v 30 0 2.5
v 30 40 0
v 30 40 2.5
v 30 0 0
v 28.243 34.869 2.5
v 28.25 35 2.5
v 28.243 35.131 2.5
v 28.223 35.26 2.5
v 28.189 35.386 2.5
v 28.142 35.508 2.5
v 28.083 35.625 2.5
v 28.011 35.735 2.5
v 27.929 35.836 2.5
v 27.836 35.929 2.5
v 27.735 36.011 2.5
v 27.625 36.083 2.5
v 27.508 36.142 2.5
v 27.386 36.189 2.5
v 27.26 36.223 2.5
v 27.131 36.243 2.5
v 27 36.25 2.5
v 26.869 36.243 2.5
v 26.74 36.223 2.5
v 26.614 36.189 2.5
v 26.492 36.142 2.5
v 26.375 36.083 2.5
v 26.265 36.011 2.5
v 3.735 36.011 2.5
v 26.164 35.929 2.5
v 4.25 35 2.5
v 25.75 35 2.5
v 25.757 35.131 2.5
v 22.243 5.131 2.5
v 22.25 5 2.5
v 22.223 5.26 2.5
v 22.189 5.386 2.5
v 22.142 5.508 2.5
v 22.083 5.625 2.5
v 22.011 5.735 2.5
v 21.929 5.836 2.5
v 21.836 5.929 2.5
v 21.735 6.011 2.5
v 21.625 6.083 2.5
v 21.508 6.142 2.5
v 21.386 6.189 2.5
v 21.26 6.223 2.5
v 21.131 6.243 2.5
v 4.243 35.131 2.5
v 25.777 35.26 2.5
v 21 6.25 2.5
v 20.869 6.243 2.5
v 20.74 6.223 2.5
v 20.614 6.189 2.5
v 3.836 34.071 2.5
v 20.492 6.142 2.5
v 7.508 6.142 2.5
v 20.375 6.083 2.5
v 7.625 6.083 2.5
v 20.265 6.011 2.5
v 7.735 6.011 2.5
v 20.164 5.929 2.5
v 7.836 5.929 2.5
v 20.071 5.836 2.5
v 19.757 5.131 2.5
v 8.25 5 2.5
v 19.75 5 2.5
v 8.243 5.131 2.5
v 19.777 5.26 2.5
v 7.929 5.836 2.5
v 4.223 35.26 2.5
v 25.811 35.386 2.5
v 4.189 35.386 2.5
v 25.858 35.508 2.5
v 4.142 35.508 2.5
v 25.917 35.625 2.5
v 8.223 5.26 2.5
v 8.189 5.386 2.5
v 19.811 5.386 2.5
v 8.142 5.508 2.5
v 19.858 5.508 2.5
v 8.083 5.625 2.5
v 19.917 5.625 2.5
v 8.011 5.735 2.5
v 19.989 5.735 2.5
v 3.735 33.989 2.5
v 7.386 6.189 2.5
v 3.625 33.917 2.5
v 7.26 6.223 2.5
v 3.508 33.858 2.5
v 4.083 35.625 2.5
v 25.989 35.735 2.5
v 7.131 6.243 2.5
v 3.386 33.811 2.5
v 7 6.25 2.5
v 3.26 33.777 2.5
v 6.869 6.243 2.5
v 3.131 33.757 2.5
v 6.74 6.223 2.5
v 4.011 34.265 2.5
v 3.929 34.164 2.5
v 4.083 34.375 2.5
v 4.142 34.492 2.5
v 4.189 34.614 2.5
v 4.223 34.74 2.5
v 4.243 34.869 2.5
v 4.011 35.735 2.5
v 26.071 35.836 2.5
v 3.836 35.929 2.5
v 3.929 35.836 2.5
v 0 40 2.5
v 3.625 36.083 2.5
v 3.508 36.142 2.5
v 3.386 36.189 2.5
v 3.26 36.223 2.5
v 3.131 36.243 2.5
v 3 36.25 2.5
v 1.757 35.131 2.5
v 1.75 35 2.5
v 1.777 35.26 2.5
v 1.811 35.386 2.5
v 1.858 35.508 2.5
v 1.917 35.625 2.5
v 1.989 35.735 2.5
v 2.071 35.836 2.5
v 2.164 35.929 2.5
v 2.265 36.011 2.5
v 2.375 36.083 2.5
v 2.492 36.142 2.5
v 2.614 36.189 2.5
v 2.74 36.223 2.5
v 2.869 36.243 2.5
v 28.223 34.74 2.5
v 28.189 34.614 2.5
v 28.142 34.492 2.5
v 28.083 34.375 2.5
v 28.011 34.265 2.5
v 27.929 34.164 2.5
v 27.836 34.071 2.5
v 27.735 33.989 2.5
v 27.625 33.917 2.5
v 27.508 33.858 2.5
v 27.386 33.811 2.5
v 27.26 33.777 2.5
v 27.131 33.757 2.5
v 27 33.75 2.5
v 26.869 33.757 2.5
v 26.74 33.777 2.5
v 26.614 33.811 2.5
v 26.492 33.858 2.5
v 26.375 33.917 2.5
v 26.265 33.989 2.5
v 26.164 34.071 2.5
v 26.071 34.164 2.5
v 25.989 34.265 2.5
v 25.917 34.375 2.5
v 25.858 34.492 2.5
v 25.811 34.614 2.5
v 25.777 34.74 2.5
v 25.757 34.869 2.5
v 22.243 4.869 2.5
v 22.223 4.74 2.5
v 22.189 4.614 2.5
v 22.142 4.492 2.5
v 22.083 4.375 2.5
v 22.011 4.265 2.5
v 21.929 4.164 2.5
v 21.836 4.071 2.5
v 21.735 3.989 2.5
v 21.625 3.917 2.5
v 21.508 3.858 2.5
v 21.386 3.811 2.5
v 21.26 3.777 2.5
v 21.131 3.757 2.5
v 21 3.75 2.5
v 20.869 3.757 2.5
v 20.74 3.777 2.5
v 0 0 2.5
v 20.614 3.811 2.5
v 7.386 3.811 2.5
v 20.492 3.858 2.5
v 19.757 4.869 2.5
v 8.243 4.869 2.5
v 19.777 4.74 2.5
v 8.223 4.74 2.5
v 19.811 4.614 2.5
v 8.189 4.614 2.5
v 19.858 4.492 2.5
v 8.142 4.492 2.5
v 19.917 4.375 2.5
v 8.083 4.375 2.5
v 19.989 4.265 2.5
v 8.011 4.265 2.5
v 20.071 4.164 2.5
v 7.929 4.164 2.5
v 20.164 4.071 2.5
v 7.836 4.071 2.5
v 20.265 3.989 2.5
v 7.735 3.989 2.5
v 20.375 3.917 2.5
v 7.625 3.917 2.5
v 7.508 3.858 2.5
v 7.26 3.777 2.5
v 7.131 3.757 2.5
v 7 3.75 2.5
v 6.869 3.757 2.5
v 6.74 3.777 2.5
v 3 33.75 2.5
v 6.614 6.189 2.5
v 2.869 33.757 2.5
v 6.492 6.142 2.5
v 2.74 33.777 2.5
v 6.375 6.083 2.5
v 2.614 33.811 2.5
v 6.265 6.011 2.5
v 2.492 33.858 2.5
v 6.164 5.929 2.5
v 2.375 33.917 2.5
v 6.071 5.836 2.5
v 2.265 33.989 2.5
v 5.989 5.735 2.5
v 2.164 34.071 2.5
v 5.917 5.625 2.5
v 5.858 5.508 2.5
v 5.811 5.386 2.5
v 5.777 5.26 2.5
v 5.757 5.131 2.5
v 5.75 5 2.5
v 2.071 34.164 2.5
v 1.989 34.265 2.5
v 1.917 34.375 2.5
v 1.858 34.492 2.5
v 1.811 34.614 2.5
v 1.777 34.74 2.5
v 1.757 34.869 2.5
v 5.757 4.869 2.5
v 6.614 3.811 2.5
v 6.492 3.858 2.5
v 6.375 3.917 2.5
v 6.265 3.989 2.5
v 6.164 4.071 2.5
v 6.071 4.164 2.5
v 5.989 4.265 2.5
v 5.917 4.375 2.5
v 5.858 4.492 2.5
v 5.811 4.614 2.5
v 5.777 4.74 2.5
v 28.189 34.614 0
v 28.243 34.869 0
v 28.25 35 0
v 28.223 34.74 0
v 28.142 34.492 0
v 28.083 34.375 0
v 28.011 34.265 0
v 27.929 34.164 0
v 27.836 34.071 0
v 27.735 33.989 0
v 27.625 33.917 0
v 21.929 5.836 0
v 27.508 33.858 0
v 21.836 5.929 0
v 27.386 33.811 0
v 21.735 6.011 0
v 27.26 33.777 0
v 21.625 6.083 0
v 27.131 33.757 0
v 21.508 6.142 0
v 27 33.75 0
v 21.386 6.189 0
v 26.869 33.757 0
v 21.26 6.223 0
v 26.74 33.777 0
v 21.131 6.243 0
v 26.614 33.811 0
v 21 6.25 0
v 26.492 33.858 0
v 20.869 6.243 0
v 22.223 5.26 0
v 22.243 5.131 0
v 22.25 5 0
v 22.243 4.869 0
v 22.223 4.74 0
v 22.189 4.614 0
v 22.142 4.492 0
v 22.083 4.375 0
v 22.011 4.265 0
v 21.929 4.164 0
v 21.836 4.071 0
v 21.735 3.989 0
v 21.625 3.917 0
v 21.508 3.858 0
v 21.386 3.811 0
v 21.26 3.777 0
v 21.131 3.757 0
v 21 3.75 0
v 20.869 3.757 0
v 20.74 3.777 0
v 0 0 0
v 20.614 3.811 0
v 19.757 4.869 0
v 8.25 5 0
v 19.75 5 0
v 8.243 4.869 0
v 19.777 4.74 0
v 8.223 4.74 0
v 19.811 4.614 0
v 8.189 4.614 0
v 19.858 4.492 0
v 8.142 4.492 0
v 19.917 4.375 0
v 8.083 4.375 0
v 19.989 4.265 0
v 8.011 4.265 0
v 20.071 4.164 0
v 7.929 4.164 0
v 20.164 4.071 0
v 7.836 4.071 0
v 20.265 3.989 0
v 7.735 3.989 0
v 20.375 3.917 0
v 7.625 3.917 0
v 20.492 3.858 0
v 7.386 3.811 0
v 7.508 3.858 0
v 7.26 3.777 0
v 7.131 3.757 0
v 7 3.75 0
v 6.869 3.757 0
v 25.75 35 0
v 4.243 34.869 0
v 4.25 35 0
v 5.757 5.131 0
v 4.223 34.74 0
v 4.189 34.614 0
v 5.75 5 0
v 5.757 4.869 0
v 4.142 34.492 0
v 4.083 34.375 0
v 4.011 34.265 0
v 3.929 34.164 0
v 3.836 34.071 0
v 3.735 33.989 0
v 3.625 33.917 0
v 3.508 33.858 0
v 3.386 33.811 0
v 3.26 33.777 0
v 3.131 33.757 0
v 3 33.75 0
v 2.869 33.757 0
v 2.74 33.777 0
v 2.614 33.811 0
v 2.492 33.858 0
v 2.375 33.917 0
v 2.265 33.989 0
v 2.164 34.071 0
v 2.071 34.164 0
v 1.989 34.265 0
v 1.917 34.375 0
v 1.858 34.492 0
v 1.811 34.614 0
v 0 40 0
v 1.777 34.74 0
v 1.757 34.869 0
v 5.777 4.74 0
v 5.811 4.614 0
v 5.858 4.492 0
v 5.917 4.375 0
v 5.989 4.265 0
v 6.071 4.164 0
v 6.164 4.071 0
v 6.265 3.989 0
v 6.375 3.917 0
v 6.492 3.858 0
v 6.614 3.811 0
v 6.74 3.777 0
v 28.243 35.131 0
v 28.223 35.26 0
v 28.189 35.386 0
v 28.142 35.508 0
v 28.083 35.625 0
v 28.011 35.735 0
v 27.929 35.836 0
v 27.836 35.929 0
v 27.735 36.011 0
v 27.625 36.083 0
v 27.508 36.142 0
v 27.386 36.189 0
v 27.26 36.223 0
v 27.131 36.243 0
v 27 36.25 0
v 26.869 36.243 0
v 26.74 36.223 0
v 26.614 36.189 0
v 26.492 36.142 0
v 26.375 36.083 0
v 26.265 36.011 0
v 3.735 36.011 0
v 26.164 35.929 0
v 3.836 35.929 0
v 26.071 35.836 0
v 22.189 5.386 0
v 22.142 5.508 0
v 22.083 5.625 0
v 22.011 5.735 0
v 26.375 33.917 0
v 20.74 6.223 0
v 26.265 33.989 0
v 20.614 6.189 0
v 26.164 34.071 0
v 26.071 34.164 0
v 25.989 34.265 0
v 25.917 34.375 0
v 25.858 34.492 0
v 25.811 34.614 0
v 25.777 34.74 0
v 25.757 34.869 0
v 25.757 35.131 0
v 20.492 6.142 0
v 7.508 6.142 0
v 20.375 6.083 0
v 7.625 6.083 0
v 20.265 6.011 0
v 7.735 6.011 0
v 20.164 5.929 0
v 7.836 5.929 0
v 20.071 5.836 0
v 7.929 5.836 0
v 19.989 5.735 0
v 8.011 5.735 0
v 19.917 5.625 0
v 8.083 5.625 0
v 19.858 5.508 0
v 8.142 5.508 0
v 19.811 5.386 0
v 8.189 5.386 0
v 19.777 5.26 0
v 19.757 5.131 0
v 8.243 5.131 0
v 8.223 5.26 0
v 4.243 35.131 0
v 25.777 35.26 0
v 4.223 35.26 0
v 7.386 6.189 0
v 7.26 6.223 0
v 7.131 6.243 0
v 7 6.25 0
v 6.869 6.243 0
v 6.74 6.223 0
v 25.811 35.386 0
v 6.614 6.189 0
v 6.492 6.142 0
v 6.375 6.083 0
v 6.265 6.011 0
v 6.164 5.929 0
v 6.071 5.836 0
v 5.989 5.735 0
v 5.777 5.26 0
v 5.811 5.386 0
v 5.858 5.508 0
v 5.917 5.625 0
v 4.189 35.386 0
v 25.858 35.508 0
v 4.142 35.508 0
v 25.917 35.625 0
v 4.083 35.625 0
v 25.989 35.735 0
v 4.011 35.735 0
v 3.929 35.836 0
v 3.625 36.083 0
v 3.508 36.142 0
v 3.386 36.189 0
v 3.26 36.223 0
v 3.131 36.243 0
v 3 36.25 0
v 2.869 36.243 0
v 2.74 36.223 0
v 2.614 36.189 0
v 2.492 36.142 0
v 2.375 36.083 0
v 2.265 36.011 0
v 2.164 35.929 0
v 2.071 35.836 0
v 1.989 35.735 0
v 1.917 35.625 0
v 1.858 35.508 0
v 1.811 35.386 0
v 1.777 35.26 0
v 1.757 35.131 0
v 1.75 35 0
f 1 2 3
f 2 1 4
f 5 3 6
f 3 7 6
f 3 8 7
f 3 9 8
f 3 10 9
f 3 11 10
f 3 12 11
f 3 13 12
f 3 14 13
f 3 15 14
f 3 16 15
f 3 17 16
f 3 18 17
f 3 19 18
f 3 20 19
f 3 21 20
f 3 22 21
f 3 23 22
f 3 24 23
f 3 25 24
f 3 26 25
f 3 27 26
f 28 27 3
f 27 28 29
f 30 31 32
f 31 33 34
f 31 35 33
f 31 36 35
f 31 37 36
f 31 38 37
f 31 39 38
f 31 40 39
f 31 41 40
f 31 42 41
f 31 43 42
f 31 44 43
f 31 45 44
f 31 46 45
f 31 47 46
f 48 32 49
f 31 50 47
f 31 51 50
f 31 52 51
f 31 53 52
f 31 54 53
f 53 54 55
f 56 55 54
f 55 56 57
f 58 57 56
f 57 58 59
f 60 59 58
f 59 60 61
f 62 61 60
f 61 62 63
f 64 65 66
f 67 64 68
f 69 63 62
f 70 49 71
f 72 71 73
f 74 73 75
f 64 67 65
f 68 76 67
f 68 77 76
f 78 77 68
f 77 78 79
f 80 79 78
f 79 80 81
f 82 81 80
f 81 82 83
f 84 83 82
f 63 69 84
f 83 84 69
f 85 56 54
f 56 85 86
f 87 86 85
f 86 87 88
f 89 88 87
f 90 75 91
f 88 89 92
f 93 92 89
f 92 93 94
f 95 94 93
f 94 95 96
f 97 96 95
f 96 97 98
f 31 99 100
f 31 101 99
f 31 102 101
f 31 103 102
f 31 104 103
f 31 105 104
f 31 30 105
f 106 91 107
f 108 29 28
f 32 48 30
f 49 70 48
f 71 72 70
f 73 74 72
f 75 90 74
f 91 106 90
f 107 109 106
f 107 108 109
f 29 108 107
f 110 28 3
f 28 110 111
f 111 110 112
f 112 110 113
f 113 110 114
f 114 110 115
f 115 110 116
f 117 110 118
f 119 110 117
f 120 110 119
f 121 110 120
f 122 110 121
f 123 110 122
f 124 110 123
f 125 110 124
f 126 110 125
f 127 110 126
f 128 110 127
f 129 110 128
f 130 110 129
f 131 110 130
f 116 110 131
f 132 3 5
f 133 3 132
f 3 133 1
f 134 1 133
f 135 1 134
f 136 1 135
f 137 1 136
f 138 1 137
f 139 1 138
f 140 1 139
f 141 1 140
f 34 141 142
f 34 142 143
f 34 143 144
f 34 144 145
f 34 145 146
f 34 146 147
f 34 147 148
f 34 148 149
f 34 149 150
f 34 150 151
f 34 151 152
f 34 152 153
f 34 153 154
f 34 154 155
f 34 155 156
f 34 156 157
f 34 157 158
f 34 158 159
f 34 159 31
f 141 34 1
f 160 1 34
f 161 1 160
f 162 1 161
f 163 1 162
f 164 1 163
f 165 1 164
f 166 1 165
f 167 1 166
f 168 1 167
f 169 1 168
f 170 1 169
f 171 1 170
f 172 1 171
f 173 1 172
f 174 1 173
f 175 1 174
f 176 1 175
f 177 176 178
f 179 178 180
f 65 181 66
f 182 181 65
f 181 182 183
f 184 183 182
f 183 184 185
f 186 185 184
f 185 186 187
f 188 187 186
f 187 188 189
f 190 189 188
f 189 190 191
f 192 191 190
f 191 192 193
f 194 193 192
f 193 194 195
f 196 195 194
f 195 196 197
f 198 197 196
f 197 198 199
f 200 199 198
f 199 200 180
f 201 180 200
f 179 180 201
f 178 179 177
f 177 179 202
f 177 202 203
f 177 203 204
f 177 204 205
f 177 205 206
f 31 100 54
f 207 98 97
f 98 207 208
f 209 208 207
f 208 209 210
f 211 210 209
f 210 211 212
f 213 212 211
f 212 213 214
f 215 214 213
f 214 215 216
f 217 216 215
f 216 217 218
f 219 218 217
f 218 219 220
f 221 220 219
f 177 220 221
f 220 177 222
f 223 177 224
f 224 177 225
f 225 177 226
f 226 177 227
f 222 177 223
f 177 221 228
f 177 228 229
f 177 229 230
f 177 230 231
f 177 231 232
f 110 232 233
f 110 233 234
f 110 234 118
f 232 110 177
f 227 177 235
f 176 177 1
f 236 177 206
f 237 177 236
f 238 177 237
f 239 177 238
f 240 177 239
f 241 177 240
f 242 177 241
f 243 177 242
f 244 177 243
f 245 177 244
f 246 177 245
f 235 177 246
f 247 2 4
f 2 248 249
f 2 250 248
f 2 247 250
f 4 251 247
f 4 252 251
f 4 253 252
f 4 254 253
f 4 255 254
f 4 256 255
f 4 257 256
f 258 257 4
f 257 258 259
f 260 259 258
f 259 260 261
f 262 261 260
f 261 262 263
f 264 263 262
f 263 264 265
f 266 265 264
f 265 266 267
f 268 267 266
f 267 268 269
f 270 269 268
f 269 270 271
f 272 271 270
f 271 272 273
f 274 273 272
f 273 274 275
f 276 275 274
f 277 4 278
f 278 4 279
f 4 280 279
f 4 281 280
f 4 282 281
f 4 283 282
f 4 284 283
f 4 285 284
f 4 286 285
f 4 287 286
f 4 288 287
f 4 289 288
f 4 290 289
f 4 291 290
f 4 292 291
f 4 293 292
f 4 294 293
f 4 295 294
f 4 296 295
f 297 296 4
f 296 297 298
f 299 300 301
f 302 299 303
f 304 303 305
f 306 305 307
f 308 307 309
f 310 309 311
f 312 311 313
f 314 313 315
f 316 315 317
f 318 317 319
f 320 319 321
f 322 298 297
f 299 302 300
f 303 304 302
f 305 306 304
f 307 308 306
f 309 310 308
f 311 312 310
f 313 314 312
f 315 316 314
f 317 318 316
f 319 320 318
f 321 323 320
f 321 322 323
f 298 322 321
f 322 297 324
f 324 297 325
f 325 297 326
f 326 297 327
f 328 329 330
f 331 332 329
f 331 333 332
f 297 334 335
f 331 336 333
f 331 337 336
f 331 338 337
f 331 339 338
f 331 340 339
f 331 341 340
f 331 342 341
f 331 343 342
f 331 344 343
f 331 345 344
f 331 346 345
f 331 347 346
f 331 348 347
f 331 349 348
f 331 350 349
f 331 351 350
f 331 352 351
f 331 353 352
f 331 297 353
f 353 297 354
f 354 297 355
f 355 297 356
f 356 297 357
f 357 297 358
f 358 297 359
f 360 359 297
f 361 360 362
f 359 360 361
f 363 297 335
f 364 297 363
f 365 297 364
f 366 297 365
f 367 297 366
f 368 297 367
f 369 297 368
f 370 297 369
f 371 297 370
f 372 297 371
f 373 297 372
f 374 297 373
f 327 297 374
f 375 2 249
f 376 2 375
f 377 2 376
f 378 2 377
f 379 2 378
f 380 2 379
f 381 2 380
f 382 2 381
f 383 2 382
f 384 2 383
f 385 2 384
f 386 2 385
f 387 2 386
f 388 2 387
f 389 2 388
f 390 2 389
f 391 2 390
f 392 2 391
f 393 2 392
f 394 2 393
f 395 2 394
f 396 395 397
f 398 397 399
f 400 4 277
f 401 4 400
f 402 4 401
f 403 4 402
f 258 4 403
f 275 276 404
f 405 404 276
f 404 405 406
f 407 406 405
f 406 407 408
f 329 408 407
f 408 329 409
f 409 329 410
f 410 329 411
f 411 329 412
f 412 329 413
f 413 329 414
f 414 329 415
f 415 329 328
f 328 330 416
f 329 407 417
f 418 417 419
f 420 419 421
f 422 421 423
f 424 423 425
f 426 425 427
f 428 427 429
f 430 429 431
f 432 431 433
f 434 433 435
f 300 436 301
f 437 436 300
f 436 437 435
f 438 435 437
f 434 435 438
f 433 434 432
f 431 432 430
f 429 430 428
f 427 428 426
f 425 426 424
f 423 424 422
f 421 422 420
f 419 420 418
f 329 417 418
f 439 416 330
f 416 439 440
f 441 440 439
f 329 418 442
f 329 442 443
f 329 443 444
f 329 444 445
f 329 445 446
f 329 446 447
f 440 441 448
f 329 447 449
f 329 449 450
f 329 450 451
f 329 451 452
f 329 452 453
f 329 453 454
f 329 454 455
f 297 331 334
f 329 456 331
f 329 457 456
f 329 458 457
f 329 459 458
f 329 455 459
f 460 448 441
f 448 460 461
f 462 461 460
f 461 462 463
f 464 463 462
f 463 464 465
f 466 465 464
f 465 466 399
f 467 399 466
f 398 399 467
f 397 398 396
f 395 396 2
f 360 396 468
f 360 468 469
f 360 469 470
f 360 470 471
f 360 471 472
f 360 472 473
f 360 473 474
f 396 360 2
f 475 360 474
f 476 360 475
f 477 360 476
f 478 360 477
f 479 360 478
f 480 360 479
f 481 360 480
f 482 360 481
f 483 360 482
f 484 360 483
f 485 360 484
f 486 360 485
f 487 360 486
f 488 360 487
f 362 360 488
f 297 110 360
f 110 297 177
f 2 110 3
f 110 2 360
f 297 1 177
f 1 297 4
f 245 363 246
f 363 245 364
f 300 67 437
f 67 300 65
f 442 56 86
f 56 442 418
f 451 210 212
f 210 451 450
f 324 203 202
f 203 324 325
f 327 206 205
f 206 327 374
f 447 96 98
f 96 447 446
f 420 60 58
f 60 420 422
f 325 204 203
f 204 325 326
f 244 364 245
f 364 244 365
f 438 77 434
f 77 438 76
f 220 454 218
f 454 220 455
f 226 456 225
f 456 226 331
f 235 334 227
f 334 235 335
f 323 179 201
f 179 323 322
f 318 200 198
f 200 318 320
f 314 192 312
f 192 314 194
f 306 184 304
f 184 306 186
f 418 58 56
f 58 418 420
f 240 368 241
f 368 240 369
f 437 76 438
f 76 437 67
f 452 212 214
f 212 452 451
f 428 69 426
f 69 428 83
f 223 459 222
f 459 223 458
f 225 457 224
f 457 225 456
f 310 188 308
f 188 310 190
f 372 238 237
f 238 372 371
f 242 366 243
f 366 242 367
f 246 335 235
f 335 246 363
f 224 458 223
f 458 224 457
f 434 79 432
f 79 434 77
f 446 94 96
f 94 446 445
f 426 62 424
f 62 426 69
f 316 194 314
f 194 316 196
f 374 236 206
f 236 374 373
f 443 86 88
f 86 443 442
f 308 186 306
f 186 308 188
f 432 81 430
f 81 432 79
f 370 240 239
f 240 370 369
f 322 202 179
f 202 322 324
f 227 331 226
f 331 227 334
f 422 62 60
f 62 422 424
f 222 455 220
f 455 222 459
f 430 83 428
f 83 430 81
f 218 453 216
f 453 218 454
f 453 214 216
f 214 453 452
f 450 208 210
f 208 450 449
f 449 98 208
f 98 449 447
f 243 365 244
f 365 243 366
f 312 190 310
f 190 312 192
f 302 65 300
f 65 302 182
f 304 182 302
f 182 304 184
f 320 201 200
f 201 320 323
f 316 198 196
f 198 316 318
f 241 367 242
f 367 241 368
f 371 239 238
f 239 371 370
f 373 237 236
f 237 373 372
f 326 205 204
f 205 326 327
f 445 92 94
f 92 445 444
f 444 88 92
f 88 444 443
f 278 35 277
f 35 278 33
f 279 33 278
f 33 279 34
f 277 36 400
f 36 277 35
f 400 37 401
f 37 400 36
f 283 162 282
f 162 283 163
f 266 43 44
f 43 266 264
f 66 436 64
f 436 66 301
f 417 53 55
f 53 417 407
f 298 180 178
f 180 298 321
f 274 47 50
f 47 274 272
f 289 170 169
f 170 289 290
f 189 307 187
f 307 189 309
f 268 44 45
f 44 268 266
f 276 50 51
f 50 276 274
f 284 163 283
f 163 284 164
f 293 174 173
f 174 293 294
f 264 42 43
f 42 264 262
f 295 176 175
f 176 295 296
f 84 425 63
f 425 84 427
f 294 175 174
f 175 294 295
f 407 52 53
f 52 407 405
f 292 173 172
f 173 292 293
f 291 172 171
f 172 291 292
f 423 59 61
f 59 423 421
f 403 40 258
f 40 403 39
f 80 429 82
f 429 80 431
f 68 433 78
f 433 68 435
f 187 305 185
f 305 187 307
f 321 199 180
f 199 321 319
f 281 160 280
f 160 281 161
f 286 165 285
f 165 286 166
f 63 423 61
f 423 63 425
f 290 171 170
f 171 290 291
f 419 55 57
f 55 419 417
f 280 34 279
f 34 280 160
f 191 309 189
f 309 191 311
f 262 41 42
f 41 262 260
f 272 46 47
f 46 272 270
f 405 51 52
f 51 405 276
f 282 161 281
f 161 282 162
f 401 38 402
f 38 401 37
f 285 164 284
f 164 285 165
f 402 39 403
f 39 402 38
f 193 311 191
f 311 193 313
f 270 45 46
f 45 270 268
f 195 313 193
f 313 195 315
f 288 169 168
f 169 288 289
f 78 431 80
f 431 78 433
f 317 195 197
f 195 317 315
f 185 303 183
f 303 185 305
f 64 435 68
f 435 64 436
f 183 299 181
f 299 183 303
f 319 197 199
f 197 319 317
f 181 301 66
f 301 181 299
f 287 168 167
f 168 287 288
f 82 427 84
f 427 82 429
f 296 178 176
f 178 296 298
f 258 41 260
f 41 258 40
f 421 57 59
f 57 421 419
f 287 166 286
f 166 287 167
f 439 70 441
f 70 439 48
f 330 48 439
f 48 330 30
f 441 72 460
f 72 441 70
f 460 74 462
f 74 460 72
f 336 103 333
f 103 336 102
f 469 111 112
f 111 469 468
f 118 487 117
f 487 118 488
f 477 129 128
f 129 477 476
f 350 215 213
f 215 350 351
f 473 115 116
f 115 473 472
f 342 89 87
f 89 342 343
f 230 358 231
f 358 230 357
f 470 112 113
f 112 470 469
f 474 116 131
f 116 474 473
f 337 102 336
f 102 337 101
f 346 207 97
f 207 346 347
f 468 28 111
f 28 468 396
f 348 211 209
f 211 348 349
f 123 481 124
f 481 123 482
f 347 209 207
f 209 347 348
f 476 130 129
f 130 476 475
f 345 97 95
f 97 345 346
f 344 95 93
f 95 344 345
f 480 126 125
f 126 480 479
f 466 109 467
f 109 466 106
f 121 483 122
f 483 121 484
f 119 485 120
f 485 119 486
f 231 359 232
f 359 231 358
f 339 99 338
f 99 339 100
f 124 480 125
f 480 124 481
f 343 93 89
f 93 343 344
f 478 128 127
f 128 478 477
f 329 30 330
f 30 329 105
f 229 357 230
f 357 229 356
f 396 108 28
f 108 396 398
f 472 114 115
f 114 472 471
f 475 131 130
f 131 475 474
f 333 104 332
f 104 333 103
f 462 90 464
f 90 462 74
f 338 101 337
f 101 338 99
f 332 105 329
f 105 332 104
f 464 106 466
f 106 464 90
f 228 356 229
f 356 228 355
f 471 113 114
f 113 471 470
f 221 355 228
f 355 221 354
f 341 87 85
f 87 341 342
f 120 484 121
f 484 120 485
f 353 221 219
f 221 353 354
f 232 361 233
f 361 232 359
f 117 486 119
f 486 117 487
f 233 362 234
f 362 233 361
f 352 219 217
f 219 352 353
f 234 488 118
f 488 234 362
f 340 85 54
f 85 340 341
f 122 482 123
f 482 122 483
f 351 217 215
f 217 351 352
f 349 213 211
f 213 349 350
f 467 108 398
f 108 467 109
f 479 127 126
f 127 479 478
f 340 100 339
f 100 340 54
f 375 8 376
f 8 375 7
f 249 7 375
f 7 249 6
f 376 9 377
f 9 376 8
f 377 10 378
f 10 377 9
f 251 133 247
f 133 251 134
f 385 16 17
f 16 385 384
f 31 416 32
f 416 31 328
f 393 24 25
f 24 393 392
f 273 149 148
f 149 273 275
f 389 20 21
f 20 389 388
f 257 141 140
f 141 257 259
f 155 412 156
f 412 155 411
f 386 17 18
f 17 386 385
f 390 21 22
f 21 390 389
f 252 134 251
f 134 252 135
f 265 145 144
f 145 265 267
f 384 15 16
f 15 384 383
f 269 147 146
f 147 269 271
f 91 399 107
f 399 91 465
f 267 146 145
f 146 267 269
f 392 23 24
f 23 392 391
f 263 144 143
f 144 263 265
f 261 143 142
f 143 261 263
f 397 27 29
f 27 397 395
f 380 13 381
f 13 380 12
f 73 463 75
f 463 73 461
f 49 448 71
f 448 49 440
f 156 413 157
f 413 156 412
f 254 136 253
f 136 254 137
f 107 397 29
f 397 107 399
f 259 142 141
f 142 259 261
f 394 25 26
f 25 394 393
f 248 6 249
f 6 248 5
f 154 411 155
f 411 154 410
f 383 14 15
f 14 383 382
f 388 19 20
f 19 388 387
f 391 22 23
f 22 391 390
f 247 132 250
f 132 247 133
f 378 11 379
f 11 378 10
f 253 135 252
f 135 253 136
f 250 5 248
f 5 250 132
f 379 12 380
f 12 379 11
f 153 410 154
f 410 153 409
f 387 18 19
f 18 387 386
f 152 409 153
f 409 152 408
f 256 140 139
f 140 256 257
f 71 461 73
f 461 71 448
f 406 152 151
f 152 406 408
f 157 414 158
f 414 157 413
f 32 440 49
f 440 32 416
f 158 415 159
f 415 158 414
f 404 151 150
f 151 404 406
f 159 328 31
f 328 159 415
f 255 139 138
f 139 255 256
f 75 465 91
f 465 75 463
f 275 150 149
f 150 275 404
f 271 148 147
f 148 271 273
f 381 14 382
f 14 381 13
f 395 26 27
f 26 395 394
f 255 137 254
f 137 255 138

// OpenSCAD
// file: wntrmute.scad
function M2() = 1;
function M25() = 1.25;
function M3() = 1.75;
function M4() = 2.1;
function PlateHeight() = 2.5;
    

module screw_hole(size, x, y, height=PlateHeight()+1) {
    union() {
       translate([x, y, -1])
       cylinder(h=5, r=size, $fn=60); 
    };
}

// x and y are the center point for the battery mount.
module battery_mount(x, y, size=M3(), rotation=0) {
    offset = 19.5 / 2;
    union() {
        screw_hole(size, x-offset, y);
        screw_hole(size, x+offset, y);
    }
}

module arduino_uno(x, y, size=M3(), rotation=0) {
    union() {
        screw_hole(size, x, y); 
        screw_hole(size, x+50.8, y-15.2);
        screw_hole(size, x+50.8, y-43.1);
        screw_hole(size, x, y-48.3);
    }
}

module robot_power_board(x, y, size=M3(), rotation=0) {
    union() {
        screw_hole(size, x, y);
        screw_hole(size, x+31.5, y);
        screw_hole(size, x, y+18.5);
        screw_hole(size, x+31.5, y+18.5);
    }
}

module raspberry_pi_zero(x, y, size=M3(), rotation=0) {
    union () {
        screw_hole(size, x, y);
        screw_hole(size, x+58, y);
        screw_hole(size, x, y+23);
        screw_hole(size, x+58, y+23);
    }
}

module raspberry_pi_3(x, y, size=M3(), rotation=0) {
    union () {
        screw_hole(size, x, y);
        screw_hole(size, x+58, y);
        screw_hole(size, x, y+49);
        screw_hole(size, x+58, y+49);
    }
}

module ultrasonic_mount(x, y, size=M3(), rotation=undef) {
    //rotate(rotation?rotation:[0,0,0])
    union() {
        screw_hole(size, x, y);
        screw_hole(size, x+13, y);
    }
}
// main file
use <wntrmute.scad>;

difference () {
    cube([30, 40, PlateHeight()]);
    screw_hole(M25(), 7, 5);
    screw_hole(M25(), 21, 5);
    screw_hole(M25(), 3, 35);
    screw_hole(M25(), 27, 35);
}
